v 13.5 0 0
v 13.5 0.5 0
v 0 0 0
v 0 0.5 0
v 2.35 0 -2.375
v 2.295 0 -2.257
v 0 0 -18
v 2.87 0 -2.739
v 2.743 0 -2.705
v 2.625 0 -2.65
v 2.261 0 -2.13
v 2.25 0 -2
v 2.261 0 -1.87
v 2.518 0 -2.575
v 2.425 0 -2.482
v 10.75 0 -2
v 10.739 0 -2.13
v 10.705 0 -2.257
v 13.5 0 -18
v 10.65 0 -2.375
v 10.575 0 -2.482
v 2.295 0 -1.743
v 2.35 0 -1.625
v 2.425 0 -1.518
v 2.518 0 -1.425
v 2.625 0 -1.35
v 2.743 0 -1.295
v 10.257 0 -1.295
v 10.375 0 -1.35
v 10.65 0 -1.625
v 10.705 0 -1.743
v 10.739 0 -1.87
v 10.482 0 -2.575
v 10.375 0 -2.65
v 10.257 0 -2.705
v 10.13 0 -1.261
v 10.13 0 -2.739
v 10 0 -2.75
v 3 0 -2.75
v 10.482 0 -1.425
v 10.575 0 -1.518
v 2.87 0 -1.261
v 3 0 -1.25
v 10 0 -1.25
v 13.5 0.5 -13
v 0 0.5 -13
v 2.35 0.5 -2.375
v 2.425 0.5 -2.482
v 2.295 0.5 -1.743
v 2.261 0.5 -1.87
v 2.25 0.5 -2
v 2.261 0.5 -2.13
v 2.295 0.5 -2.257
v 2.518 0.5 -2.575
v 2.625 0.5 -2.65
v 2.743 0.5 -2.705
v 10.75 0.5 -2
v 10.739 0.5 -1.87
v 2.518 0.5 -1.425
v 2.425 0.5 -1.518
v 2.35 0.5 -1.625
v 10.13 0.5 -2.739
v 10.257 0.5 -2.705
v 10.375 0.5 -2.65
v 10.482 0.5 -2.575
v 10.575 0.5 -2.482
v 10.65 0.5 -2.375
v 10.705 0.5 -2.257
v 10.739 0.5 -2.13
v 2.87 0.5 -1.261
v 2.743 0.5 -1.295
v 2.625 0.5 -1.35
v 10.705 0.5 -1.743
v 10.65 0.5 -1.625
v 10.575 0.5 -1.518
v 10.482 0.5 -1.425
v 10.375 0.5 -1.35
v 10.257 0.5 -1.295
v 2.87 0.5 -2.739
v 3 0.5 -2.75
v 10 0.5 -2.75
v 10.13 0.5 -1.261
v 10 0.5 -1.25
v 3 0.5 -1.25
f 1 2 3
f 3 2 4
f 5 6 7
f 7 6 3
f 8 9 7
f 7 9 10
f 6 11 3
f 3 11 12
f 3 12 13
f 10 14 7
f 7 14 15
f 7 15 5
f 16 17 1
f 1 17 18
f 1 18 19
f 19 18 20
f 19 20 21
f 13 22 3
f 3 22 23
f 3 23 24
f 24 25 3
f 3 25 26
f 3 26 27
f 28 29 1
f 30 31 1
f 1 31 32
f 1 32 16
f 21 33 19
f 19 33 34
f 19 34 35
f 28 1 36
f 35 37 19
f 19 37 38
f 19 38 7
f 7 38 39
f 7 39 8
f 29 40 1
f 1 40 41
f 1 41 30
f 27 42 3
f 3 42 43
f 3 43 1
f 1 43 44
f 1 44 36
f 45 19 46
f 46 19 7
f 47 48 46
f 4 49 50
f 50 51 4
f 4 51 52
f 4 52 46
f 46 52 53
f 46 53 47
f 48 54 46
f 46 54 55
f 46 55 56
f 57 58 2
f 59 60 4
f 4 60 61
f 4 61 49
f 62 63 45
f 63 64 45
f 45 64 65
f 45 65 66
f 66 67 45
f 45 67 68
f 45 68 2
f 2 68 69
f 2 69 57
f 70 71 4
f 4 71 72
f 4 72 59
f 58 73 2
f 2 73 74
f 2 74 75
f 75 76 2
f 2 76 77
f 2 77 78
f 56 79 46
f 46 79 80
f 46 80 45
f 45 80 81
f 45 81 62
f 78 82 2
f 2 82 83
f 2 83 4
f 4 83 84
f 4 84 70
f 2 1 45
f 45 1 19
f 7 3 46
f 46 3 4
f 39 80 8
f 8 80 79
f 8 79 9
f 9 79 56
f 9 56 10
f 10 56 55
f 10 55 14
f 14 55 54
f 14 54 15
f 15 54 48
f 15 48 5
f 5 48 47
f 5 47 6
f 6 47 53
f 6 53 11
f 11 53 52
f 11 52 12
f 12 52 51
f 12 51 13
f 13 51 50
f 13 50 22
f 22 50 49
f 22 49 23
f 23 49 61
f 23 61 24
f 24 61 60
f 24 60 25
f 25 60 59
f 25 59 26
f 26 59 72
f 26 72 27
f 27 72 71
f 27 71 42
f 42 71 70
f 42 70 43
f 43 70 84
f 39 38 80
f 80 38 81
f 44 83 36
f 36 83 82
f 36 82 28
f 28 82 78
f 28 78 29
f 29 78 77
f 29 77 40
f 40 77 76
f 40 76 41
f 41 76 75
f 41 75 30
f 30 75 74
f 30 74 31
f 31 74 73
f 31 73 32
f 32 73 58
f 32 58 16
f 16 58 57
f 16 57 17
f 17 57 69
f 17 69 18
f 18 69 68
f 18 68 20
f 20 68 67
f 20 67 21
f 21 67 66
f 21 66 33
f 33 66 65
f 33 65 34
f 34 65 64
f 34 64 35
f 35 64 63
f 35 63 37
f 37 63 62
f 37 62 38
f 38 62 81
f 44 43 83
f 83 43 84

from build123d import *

# Parameters (mm, degrees)
SALIENTE_EXTRUIR1_DEPTH = 13.5
CORTAR_EXTRUIR1_DEPTH   = 23.50555487


with BuildPart() as part:
    # Croquis1 → Saliente-Extruir1 (new body)
    with BuildSketch(Plane(origin=(0, 0, 0), x_dir=(0, 0, -1), z_dir=(1, 0, 0))):
        Polygon((0, 0), (18, 0), (13, 0.5), (0, 0.5), align=None)
    extrude(amount=SALIENTE_EXTRUIR1_DEPTH)

    # Croquis2 → Cortar-Extruir1 (cut, through all)
    with BuildSketch(Plane(origin=(0, 0.5, 0), x_dir=(1, 0, 0), z_dir=(0, 1, 0))):
        with BuildLine():
            Line((3, 2.75), (10, 2.75))
            ThreePointArc((10, 2.75), (10.75, 2), (10, 1.25))
            Line((10, 1.25), (3, 1.25))
            ThreePointArc((3, 1.25), (2.25, 2), (3, 2.75))
        make_face()
    extrude(amount=-CORTAR_EXTRUIR1_DEPTH, mode=Mode.SUBTRACT)


solid = part.part
